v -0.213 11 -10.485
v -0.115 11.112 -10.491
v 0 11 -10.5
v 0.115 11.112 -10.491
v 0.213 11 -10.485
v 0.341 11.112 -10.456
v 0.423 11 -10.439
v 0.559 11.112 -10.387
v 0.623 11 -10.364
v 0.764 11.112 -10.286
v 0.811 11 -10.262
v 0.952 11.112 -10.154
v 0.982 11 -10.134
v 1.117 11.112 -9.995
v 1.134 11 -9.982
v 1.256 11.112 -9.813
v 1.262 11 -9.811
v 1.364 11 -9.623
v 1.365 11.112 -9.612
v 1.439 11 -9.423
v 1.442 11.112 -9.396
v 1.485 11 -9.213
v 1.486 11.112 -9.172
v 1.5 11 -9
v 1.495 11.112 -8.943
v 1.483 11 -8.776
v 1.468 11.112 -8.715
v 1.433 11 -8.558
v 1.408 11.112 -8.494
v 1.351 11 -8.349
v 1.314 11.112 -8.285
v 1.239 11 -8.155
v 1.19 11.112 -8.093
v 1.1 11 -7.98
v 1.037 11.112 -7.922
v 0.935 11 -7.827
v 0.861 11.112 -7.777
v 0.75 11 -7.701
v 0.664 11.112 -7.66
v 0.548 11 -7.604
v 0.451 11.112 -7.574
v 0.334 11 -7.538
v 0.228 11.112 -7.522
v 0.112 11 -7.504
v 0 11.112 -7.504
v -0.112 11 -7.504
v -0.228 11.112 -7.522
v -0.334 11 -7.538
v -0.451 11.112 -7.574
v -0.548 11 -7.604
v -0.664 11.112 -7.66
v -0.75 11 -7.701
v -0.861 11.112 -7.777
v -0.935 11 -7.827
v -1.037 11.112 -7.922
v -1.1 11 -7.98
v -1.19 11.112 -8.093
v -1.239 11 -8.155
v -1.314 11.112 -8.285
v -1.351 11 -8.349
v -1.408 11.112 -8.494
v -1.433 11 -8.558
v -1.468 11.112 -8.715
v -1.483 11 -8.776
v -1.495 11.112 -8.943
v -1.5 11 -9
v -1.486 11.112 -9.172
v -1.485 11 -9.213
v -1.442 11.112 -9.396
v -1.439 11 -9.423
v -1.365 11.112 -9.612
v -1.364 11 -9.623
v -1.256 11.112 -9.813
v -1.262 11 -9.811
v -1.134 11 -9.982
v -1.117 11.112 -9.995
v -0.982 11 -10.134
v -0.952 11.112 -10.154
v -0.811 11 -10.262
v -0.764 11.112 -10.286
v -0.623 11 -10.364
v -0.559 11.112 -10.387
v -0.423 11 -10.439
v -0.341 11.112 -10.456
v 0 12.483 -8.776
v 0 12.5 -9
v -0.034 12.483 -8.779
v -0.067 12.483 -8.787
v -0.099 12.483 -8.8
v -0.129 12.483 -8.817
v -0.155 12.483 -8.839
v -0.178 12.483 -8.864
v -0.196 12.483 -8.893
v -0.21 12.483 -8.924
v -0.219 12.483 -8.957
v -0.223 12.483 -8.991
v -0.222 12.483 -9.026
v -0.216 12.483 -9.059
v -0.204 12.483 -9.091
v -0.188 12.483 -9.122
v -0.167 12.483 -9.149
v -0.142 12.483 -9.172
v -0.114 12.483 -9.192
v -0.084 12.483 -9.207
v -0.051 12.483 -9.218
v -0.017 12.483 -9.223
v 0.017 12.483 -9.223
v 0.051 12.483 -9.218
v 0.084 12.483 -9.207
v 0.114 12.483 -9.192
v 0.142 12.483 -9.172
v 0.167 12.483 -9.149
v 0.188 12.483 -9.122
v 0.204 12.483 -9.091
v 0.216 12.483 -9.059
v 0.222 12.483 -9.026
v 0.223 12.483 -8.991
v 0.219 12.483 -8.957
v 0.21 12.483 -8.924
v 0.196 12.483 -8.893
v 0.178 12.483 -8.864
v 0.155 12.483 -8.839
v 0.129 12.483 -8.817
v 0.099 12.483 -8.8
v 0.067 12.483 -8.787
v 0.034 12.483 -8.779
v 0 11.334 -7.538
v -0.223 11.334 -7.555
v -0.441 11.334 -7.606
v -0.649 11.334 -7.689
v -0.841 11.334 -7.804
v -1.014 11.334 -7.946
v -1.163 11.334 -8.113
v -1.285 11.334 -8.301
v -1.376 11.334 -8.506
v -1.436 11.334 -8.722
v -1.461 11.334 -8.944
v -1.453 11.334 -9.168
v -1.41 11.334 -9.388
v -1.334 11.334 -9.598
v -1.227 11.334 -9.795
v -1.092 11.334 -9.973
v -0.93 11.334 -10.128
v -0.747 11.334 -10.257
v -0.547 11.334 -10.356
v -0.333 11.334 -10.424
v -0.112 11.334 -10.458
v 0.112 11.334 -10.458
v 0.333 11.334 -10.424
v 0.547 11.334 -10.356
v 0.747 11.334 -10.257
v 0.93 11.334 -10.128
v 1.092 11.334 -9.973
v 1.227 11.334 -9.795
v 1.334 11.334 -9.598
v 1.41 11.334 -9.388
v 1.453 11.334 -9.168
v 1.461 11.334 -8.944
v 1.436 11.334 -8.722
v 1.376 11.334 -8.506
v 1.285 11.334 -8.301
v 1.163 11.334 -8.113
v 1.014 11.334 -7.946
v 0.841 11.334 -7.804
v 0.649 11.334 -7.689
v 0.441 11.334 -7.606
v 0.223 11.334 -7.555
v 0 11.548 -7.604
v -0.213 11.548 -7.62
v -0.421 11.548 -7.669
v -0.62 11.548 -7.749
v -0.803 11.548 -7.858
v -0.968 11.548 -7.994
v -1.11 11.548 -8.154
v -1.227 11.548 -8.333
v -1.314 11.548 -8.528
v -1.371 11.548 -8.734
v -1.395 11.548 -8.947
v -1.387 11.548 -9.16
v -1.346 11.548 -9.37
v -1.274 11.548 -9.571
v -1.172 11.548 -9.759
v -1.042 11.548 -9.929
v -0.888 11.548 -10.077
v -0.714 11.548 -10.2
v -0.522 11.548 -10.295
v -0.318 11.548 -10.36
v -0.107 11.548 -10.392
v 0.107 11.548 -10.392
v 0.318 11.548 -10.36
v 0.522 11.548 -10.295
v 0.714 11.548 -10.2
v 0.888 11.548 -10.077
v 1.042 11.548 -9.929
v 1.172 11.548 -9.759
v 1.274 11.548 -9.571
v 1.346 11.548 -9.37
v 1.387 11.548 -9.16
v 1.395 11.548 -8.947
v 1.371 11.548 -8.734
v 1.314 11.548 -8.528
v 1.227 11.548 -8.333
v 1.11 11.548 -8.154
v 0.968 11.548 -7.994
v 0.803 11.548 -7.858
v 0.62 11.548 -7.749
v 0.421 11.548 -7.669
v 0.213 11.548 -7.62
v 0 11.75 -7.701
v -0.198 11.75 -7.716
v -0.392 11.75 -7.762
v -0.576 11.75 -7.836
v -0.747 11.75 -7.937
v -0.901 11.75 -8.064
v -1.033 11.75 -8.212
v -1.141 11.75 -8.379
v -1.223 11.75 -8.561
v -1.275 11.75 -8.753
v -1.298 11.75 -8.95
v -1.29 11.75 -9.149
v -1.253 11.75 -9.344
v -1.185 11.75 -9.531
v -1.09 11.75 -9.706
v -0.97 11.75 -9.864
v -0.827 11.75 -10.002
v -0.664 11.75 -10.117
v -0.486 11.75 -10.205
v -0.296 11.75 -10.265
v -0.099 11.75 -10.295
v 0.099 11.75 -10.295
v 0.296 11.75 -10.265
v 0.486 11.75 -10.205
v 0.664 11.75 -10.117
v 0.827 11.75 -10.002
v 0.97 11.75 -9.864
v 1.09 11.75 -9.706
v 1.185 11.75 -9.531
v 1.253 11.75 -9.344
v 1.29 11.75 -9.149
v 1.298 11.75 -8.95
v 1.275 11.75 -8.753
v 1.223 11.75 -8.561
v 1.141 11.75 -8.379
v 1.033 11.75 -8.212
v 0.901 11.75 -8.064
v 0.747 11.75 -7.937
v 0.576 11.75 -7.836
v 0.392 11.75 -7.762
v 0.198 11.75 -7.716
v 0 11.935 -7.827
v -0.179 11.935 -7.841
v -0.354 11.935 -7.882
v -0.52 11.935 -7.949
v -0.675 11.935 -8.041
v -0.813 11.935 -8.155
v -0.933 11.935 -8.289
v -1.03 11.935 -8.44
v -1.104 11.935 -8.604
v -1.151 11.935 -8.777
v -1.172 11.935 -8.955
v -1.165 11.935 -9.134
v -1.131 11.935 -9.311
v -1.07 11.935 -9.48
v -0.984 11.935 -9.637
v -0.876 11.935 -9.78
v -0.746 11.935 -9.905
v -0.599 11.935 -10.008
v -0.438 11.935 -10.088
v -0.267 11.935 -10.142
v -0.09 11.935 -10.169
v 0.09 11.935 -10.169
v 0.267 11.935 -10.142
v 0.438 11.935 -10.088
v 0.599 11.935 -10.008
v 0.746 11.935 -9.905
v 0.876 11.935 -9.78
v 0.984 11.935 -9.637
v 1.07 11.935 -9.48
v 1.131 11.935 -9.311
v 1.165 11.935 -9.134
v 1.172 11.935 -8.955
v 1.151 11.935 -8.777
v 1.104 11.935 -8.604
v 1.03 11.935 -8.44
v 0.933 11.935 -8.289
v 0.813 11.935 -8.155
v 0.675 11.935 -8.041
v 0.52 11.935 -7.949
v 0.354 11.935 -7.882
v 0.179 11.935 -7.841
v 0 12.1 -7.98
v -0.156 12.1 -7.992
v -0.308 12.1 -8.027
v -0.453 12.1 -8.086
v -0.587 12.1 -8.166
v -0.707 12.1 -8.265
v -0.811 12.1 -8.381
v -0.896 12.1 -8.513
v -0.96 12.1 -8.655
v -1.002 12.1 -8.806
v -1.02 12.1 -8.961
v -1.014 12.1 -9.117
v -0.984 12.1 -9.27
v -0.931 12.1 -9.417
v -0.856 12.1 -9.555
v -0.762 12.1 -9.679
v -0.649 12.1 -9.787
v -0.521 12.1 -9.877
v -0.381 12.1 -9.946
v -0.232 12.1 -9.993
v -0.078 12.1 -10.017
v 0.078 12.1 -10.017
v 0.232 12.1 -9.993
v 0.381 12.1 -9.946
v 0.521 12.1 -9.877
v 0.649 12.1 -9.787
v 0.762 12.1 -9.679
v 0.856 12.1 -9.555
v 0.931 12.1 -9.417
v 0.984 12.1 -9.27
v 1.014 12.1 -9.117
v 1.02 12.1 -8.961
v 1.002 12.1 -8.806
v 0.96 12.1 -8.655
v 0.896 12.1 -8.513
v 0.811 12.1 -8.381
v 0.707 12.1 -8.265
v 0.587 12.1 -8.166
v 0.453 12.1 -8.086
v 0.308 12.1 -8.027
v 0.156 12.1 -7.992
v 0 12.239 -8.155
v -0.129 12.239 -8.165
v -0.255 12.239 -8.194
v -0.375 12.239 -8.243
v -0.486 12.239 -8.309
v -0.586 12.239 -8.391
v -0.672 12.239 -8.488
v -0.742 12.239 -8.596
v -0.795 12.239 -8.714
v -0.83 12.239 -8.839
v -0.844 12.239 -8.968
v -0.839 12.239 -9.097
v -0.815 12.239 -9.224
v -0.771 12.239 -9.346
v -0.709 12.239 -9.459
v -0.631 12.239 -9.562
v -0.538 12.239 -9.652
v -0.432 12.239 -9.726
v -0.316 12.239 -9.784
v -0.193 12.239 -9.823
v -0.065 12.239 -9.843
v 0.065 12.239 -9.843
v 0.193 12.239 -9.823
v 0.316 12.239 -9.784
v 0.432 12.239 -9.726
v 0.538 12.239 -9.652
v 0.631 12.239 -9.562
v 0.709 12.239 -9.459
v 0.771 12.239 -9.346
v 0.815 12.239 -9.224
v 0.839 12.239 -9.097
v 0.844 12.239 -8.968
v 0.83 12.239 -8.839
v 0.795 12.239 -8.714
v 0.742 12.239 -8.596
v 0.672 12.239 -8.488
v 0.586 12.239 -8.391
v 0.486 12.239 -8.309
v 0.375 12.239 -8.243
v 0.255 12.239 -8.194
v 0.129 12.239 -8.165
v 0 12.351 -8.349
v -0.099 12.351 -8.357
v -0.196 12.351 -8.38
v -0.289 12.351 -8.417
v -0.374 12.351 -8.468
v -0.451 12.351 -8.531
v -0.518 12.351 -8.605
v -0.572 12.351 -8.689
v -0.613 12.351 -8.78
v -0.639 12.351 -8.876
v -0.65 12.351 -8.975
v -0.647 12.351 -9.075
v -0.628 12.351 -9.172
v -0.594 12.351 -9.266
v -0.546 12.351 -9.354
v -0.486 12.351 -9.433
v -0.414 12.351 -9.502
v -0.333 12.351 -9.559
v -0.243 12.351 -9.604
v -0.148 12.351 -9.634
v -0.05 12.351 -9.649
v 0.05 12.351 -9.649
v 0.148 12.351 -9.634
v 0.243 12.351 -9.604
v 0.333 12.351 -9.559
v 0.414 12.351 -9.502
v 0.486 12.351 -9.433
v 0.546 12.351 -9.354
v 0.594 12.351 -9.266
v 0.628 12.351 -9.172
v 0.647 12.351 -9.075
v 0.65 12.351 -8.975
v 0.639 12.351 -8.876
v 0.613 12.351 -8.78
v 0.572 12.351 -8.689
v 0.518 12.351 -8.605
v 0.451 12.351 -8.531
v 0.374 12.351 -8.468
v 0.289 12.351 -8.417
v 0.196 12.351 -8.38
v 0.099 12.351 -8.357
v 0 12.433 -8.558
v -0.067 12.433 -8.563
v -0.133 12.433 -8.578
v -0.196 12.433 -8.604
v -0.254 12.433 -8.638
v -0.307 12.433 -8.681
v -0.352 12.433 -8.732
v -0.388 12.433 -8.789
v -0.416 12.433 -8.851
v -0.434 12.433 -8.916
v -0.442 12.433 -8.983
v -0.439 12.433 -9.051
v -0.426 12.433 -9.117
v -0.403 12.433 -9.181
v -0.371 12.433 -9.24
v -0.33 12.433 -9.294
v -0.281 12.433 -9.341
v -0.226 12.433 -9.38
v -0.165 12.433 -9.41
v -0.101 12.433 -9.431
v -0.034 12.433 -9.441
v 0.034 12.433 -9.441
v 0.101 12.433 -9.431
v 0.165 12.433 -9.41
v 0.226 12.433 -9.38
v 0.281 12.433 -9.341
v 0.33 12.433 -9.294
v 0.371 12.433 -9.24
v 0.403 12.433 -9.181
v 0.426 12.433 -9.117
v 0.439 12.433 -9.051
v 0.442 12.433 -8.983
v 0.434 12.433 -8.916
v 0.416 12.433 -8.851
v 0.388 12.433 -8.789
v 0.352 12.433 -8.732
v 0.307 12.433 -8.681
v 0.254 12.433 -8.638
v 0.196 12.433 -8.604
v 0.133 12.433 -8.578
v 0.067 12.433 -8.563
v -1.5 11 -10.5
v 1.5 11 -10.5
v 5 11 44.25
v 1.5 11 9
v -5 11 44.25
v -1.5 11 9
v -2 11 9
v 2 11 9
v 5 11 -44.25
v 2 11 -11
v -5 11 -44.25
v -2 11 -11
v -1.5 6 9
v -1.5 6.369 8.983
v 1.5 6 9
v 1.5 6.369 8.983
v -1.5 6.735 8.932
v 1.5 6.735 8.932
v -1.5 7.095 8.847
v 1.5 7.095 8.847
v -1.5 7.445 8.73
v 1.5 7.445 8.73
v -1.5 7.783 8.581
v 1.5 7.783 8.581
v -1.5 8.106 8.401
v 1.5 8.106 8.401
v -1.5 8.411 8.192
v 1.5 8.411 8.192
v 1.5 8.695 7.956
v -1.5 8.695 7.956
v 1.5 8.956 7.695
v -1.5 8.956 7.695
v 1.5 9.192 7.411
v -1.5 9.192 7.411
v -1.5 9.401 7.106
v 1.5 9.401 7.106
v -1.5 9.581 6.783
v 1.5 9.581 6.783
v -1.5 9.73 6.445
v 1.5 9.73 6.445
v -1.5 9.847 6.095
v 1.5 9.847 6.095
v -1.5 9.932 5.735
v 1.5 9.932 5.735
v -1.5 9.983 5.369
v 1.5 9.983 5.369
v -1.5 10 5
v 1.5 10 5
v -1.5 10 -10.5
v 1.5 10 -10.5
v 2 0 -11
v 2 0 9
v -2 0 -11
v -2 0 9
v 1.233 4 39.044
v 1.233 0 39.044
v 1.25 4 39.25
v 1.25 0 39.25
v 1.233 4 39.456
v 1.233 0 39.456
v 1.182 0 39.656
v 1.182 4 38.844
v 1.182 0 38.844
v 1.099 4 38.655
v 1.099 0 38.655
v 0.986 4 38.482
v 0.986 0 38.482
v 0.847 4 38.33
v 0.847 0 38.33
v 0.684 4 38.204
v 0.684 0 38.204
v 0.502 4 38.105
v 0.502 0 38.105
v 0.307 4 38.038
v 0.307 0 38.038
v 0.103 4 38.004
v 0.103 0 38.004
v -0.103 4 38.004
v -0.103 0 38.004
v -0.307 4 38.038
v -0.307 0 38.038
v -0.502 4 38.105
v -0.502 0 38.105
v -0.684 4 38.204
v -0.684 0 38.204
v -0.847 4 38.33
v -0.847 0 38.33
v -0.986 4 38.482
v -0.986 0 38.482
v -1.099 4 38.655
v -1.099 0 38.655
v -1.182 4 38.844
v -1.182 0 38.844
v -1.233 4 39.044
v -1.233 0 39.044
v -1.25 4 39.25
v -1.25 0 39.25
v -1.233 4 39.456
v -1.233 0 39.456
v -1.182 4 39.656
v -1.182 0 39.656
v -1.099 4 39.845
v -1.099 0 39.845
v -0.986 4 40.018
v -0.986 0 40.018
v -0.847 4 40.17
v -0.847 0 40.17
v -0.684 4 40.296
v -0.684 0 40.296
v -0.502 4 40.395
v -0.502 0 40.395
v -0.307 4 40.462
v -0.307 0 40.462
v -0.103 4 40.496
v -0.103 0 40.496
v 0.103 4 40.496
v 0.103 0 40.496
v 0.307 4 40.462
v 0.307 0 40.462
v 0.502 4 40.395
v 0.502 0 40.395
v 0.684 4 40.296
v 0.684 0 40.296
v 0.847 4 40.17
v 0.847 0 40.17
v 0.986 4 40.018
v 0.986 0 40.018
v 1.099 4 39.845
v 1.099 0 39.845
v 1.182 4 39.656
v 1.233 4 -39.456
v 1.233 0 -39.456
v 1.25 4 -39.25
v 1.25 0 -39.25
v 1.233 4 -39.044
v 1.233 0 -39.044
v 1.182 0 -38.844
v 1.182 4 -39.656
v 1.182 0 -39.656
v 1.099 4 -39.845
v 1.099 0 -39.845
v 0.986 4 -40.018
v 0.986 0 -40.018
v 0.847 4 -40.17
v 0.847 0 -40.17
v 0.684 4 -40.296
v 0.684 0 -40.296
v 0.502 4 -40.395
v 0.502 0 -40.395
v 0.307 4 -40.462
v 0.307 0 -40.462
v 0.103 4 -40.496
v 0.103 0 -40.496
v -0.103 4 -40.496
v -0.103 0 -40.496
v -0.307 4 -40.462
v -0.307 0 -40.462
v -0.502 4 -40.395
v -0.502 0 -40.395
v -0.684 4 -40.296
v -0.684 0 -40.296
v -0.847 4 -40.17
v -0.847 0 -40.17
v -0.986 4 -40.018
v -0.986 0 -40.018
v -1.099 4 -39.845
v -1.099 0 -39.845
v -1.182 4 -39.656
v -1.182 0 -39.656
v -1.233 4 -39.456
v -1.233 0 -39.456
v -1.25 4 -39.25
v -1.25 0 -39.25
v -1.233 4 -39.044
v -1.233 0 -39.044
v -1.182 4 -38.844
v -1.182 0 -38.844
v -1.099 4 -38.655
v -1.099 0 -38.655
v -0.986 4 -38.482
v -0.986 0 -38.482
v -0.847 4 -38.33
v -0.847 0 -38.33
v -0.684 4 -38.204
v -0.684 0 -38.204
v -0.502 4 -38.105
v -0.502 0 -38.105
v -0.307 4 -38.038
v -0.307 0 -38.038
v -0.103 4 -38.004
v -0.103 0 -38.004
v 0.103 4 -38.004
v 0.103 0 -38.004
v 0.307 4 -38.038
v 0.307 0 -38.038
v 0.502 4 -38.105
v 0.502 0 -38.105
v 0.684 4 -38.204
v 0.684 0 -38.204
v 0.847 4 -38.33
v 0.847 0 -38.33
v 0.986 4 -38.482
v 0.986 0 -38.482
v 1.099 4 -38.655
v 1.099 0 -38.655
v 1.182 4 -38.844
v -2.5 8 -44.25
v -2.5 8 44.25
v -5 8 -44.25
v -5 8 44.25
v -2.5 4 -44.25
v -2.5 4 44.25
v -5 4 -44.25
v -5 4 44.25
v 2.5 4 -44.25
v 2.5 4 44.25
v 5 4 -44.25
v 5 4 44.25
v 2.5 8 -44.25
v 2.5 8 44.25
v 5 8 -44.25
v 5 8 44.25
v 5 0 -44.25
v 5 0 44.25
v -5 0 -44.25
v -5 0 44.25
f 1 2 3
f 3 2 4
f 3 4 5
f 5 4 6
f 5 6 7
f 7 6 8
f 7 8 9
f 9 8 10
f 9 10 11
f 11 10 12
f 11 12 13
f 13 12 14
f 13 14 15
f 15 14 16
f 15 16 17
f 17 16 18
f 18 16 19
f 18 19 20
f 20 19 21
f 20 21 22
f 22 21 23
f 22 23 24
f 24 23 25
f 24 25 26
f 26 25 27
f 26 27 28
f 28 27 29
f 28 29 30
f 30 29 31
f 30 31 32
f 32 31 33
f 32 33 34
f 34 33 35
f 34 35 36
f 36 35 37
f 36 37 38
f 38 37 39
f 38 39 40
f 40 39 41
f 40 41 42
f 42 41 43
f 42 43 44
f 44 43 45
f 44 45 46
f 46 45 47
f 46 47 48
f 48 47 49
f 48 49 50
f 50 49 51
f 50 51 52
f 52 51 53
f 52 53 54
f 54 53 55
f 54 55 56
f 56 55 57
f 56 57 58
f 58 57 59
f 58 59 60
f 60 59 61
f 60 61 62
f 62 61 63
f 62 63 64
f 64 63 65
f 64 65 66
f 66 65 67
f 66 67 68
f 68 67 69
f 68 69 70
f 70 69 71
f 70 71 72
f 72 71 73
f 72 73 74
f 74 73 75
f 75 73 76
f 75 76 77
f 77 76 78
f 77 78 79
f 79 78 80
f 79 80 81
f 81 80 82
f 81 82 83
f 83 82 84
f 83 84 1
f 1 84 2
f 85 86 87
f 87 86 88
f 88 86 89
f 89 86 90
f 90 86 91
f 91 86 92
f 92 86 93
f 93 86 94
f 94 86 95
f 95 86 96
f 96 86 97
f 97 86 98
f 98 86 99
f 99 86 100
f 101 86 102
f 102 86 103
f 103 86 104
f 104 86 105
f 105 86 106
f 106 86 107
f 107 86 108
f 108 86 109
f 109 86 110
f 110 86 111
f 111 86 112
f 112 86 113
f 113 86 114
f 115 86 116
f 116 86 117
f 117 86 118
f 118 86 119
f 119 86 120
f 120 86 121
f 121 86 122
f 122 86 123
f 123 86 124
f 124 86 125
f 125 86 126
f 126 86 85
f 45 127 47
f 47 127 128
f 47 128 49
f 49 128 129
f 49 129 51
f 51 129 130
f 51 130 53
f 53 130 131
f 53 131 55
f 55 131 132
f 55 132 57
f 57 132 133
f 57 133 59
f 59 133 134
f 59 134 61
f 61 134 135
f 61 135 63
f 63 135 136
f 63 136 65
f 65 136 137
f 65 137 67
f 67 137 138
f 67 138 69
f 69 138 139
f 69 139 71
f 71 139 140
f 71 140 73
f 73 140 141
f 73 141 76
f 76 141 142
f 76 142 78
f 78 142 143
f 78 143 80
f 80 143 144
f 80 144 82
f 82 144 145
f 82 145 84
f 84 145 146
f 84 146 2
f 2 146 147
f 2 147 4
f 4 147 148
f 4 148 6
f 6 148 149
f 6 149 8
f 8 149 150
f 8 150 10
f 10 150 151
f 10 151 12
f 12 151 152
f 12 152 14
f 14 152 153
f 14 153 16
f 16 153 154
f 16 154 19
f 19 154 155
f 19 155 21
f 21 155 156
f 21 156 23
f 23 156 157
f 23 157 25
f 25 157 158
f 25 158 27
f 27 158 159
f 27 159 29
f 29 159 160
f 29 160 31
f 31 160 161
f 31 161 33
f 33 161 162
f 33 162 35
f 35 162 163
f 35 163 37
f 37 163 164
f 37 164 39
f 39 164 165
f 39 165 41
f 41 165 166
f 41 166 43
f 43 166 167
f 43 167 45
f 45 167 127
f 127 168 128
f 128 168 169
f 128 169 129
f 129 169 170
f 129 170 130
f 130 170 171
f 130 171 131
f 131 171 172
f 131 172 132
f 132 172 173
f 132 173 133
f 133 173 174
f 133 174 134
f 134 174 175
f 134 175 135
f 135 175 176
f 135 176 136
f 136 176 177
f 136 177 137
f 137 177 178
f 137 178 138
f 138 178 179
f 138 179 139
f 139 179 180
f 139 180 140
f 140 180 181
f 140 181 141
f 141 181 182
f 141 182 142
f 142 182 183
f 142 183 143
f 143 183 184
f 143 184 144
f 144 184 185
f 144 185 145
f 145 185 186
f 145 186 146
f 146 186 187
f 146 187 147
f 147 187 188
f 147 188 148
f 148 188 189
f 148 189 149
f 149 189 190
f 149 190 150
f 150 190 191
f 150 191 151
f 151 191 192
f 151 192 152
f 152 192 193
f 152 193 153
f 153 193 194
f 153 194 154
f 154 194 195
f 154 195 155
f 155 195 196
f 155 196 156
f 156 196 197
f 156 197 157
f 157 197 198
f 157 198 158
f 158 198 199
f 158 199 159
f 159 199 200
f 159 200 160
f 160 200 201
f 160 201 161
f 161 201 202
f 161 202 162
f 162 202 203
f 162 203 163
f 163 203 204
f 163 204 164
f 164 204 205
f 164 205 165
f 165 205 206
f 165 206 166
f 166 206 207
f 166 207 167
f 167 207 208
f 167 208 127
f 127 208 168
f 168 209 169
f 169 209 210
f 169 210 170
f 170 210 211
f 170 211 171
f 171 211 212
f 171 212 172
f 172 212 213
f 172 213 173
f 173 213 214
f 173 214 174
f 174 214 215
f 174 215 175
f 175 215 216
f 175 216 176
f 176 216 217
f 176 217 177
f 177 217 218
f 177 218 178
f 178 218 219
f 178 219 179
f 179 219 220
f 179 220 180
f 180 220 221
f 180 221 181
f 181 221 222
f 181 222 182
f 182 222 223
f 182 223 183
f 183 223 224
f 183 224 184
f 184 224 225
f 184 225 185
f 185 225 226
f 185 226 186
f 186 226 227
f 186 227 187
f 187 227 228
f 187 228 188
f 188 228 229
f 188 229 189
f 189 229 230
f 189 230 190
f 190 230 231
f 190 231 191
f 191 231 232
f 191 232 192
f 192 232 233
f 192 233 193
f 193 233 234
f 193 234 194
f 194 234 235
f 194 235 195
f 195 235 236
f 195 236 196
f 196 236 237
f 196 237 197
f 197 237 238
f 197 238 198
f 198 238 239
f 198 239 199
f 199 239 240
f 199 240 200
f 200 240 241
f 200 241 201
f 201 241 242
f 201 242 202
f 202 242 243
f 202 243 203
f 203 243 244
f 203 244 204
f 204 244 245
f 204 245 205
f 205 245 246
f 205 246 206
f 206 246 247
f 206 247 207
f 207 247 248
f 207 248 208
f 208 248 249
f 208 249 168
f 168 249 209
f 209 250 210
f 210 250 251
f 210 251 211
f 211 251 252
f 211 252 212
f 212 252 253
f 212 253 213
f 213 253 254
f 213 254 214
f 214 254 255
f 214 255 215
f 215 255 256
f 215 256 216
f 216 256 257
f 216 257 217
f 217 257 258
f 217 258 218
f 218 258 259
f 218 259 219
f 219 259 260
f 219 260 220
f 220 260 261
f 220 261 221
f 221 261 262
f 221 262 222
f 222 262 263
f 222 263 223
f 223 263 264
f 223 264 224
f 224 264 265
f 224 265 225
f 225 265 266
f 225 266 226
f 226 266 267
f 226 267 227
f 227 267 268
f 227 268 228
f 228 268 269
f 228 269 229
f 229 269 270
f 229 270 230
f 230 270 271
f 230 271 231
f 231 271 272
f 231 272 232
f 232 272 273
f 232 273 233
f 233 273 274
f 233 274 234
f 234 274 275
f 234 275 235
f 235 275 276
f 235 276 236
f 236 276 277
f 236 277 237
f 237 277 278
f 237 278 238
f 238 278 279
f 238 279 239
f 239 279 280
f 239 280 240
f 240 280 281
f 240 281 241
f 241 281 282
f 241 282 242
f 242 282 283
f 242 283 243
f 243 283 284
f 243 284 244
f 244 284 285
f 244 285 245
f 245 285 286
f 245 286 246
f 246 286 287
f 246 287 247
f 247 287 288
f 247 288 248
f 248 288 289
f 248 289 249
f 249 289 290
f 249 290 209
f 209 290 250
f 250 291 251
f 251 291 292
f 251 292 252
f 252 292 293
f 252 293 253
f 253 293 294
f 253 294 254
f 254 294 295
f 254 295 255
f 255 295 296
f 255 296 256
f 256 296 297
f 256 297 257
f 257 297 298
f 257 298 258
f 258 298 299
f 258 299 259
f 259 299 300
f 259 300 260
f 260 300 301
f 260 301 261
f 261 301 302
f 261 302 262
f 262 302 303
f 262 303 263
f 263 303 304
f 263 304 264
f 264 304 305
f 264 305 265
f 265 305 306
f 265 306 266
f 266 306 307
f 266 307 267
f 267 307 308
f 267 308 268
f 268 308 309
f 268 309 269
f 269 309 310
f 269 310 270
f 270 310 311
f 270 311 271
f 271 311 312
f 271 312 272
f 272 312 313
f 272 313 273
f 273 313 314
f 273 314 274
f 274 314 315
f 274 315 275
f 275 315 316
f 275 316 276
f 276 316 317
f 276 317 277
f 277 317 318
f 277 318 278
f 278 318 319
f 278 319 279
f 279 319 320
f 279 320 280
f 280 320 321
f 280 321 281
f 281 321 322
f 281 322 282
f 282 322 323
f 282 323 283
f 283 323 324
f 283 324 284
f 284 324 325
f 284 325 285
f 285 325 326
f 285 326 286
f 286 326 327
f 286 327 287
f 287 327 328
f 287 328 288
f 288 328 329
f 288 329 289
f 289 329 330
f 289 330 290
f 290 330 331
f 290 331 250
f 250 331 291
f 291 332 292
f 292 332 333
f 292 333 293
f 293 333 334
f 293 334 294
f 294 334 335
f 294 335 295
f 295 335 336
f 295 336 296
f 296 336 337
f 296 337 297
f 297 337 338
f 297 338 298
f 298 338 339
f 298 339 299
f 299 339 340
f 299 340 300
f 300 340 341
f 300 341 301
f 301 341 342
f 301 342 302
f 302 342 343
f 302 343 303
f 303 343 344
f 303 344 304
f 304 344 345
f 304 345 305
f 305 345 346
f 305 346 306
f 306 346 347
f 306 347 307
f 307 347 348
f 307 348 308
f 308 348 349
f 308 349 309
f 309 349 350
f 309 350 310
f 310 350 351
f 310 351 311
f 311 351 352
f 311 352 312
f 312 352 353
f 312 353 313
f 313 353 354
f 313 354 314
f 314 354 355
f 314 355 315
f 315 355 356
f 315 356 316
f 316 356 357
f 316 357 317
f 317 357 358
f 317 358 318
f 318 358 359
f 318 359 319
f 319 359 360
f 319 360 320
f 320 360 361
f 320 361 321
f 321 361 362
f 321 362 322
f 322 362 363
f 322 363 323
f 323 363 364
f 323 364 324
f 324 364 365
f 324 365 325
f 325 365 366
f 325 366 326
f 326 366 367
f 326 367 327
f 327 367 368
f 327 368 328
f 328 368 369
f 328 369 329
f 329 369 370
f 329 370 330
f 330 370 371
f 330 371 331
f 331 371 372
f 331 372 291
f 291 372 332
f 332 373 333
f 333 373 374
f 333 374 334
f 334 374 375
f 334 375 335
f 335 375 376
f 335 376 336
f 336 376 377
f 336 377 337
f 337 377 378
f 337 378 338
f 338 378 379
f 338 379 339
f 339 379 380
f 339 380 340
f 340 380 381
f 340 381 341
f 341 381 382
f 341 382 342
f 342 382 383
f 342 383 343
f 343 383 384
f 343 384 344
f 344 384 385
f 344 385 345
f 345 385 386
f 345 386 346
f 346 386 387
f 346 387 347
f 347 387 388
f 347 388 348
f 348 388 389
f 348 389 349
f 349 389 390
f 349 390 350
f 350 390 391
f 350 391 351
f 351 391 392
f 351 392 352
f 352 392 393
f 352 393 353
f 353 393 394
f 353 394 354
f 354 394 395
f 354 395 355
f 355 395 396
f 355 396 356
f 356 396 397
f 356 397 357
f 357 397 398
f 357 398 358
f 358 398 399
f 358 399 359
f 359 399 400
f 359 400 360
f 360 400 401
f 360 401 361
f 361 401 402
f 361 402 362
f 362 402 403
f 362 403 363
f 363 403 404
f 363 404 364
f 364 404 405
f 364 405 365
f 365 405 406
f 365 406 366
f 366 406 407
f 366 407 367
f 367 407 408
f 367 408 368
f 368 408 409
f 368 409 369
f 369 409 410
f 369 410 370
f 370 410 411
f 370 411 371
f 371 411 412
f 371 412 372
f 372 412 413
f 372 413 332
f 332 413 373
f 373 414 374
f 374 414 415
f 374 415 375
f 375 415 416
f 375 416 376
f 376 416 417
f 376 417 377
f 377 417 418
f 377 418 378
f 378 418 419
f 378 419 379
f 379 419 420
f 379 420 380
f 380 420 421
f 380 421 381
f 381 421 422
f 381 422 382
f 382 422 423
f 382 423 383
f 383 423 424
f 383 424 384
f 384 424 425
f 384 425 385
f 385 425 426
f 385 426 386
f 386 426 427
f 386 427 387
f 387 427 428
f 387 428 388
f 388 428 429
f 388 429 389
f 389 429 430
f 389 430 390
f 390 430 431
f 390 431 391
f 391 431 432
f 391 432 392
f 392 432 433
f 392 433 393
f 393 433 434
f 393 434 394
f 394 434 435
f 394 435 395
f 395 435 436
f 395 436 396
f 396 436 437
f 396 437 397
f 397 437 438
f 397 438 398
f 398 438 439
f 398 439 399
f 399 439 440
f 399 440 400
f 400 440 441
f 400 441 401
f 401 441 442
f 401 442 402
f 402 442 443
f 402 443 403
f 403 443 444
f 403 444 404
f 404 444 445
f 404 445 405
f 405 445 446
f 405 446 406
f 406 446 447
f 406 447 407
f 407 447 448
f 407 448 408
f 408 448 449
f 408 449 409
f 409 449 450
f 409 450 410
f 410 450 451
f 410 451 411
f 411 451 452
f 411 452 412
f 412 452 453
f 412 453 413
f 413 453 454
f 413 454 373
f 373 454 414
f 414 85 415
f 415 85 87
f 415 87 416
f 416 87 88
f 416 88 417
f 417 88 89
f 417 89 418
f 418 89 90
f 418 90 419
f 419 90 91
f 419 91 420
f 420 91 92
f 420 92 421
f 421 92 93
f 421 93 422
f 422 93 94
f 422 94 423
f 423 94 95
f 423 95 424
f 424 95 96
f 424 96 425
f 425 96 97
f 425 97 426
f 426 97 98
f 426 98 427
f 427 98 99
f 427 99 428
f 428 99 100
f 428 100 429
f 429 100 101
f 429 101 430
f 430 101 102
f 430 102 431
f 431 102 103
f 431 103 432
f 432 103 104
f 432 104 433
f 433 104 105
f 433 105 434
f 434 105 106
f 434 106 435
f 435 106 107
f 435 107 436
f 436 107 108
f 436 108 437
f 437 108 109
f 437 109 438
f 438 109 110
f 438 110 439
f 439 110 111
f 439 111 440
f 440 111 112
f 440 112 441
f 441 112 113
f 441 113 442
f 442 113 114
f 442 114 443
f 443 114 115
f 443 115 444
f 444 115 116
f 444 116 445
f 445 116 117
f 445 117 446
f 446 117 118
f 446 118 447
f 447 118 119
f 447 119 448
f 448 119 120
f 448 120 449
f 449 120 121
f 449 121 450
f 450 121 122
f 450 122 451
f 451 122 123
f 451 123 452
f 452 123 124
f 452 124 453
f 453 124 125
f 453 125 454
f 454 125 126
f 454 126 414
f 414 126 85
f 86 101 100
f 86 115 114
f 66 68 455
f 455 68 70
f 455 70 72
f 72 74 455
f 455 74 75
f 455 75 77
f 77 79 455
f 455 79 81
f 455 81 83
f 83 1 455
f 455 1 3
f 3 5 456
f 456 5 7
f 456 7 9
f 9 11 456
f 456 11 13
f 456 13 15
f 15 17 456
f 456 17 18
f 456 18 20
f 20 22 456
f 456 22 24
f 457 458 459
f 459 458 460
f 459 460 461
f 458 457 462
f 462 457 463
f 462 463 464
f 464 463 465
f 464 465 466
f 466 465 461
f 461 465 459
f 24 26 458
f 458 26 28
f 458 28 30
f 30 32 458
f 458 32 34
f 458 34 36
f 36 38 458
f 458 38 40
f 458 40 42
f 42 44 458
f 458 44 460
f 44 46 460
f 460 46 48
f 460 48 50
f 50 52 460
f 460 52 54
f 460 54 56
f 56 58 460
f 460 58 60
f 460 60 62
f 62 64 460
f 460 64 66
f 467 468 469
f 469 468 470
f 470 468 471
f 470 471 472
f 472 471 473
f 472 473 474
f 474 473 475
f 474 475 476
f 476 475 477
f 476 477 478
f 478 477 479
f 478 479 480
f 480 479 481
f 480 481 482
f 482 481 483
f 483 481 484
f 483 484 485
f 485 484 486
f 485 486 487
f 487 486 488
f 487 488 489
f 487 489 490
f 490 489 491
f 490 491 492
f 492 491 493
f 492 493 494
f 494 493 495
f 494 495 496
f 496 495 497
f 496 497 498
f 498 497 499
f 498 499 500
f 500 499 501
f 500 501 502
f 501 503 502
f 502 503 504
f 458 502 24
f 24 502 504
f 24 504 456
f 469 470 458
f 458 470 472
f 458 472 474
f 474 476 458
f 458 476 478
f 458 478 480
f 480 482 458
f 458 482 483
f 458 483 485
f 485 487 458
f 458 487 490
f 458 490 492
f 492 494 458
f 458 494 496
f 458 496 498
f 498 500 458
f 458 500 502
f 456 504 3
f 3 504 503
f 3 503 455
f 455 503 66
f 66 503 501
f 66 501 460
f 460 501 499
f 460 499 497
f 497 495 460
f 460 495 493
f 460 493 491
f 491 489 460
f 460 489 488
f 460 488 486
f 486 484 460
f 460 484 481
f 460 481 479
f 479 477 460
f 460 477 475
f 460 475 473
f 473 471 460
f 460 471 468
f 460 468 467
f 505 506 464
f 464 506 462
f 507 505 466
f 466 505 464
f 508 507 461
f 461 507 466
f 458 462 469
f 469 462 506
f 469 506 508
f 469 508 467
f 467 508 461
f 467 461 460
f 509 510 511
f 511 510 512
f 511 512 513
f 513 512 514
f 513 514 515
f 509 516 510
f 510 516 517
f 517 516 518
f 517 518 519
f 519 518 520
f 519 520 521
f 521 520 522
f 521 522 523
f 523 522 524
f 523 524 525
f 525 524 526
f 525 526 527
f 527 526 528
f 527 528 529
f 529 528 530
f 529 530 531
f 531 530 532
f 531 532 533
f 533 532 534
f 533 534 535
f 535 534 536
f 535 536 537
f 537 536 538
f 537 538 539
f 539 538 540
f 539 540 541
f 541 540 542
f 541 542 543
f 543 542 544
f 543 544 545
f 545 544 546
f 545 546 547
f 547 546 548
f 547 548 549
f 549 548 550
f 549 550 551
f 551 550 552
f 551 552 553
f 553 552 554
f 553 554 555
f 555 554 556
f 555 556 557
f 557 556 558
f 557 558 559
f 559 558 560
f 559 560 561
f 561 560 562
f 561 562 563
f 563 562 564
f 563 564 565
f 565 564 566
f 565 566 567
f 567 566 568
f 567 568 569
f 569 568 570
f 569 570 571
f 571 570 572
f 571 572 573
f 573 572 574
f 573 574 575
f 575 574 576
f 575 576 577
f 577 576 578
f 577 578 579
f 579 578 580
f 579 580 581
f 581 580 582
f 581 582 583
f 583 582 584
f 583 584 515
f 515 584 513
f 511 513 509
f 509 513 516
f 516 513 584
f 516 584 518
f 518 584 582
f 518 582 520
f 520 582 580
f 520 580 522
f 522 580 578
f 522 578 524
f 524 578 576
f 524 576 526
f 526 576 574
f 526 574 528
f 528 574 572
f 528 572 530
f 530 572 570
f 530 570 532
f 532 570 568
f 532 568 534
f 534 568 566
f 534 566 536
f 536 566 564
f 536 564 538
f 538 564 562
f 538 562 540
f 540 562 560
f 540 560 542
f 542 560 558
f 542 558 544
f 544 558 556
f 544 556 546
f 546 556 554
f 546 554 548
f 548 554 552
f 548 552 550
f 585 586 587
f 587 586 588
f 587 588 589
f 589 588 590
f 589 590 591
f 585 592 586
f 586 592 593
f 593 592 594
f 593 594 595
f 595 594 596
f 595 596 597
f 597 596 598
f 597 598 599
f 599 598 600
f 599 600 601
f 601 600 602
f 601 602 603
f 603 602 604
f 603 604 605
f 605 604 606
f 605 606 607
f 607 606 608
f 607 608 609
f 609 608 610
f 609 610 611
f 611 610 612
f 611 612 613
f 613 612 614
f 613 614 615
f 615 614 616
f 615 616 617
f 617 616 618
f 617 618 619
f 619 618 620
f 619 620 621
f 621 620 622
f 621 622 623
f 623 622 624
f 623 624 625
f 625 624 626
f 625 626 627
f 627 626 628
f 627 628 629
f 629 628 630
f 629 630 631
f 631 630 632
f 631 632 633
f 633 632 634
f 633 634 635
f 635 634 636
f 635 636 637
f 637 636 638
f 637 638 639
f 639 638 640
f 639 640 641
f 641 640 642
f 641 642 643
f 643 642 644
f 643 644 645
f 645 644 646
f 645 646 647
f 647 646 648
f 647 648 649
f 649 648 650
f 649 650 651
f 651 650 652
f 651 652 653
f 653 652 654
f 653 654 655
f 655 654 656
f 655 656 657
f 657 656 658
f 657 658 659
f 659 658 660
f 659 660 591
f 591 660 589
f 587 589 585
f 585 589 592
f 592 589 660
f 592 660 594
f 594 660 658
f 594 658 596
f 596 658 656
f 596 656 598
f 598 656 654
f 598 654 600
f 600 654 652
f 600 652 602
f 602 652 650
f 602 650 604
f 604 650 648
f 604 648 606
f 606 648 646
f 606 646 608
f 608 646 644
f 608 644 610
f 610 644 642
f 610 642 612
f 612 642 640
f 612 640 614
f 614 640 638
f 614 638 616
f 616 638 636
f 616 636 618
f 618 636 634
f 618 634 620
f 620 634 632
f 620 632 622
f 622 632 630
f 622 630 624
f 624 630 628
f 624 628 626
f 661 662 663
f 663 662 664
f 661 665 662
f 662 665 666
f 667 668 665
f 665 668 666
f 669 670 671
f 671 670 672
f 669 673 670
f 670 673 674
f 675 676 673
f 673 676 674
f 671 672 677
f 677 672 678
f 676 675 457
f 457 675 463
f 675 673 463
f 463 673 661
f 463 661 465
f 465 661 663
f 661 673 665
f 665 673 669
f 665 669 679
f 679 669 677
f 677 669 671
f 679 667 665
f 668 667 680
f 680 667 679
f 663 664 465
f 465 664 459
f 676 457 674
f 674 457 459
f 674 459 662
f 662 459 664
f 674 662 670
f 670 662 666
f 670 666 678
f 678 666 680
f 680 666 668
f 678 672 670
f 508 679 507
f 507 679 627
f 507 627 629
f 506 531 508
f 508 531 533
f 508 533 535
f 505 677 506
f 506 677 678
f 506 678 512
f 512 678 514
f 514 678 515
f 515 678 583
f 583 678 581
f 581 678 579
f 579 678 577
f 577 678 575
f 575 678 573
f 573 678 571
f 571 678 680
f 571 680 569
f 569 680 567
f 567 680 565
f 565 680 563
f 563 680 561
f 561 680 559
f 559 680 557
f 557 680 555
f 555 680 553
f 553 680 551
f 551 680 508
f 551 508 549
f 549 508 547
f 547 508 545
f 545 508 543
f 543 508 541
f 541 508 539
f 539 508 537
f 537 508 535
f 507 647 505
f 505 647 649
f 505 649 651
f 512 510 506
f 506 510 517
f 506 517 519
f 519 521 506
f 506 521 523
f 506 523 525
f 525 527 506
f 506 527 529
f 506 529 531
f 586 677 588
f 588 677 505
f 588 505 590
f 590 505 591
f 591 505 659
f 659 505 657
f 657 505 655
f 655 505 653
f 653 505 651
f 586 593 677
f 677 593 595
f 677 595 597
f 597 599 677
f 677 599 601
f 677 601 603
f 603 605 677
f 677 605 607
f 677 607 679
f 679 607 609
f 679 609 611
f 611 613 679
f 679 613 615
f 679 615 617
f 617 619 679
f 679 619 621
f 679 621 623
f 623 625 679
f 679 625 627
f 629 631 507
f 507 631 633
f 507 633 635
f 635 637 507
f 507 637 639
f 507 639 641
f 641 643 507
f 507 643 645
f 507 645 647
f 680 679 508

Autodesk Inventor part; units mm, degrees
ref_plane "YZ Plane" through (0, 0, 0) normal (1, 0, 0) x (0, 1, 0)
ref_plane "XZ Plane" through (0, 0, 0) normal (0, 1, 0) x (-1, 0, 0)
ref_plane "XY Plane" through (0, 0, 0) normal (0, 0, 1) x (1, 0, 0)
sketch "Sketch1" plane through (0, 0, 0) normal (0, 1, 0) x (-1, 0, 0)
  line L0 (-5, 44.25) -> (5, 44.25)
  line L1 (5, 44.25) -> (5, -44.25)
  line L2 (5, -44.25) -> (-5, -44.25)
  line L3 (-5, -44.25) -> (-5, 44.25)
  line L4 (-5, 44.25) -> (5, -44.25) construction
  line L5 (5, 44.25) -> (-5, -44.25) construction
  point P0 (0, 0)
  dimension "d0" = 88.5
  dimension "d1" = 10
extrude "Extrusion1" add sketch "Sketch1" along normal blind 11
sketch "Sketch2" plane through (-5, 0, 44.25) normal (0, 0, 1) x (1, 0, 0)
  line L0 (10, 0) -> (0, 0) projected
  line L1 (5, 0) -> (0, 0)
  line L2 (0, 0) -> (0, 4)
  line L3 (0, 4) -> (2.5, 4)
  line L4 (2.5, 4) -> (2.5, 8)
  line L5 (2.5, 8) -> (0, 8)
  line L6 (0, 8) -> (0, 11)
  line L7 (0, 11) -> (5, 11)
  line L8 (0, 11) -> (10, 11) projected
  line L9 (5, 11) -> (5, 0) construction
  line L10 (0, 0) -> (10, 0)
  line L11 (10, 0) -> (10, 4)
  line L12 (10, 4) -> (7.5, 4)
  line L13 (7.5, 4) -> (7.5, 8)
  line L14 (7.5, 8) -> (10, 8)
  line L15 (10, 8) -> (10, 11)
  line L16 (10, 11) -> (5, 11)
  dimension "d4" = 3
  dimension "d5" = 4
  dimension "d6" = 2.5
extrude "Extrusion2" cut sketch "Sketch2" against normal through all keep common part
sketch "Sketch3" plane through (0, 0, 0) normal (0, -1, 0) x (1, 0, 0)
  line L0 (0, 0) -> (0, 39.25) construction
  circle A0 centre (0, 39.25) radius 1.25
  line L1 (5, -44.25) -> (5, 44.25) construction
  line L2 (5, 0) -> (-5, 0) construction
  line L3 (-5, 44.25) -> (-5, -44.25) construction
  circle A1 centre (0, -39.25) radius 1.25
  dimension "d9" = 2.5
  dimension "d10" = 39.25
extrude "Extrusion3" cut sketch "Sketch3" against normal blind 4
sketch "Sketch4" plane through (0, 11, 0) normal (0, 1, 0) x (1, 0, 0)
  line L0 (-2, 11) -> (2, 11)
  line L1 (2, 11) -> (2, -9)
  line L2 (2, -9) -> (-2, -9)
  line L3 (-2, -9) -> (-2, 11)
  line L4 (-2, 11) -> (2, -9) construction
  line L5 (2, 11) -> (-2, -9) construction
  line L6 (0, 1) -> (0, 0) construction
  dimension "d13" = 4
  dimension "d14" = 20
  dimension "d15" = 1
extrude "Extrusion4" cut sketch "Sketch4" against normal through all
sketch "Sketch5" plane through (0, 11, 0) normal (0, 1, 0) x (1, 0, 0)
  line L0 (-2, -9) -> (-2, 11) projected
  line L1 (-2, 11) -> (2, 11) projected
  line L2 (2, 11) -> (2, -9) projected
  line L3 (-1.5, -9) -> (-1.5, 10.5)
  line L4 (-1.5, 10.5) -> (1.5, 10.5)
  line L5 (1.5, 10.5) -> (1.5, -9)
  line L6 (-1.5, -9) -> (1.5, -9)
  line L7 (2, -9) -> (-2, -9) projected
  point P0 (0, 0)
  dimension "d18" = 0.5
extrude "Extrusion5" add sketch "Sketch5" against normal blind 1 contours L3 L4 L5 L6
fillet "Fillet1" radius 4 1 edges at (0, 10, 9)
sketch "Sketch7" plane through (0, 11, 0) normal (0, 1, 0) x (1, 0, 0)
  line L0 (1.5, 10.5) -> (-1.5, 10.5) construction
  line L1 (-1.5, 10.5) -> (1.5, 10.5) construction
  line L2 (1.5, 10.5) -> (1.5, 7.5) construction
  line L3 (1.5, 7.5) -> (-1.5, 7.5) construction
  line L4 (-1.5, 7.5) -> (-1.5, 10.5) construction
  line L5 (1.5, -9) -> (1.5, 10.5) projected
  line L6 (-1.5, 10.5) -> (1.5, 7.5) construction
  circle A0 centre (0, 9) radius 1.5
  line L7 (0, 9) -> (1.5, 9)
  line L8 (0, 9) -> (-1.5, 9)
  point P0 (0, 0)
  dimension "d24" = 3
  dimension "d25" = 3
revolve "Revolution1" add sketch "Sketch7" angle 180 about axis through (0, 11, -9) along (1, 0, 0) picked at (0.9282, 9.352) contours L7 L8 A0
properties part number "Screen Docking rail"
